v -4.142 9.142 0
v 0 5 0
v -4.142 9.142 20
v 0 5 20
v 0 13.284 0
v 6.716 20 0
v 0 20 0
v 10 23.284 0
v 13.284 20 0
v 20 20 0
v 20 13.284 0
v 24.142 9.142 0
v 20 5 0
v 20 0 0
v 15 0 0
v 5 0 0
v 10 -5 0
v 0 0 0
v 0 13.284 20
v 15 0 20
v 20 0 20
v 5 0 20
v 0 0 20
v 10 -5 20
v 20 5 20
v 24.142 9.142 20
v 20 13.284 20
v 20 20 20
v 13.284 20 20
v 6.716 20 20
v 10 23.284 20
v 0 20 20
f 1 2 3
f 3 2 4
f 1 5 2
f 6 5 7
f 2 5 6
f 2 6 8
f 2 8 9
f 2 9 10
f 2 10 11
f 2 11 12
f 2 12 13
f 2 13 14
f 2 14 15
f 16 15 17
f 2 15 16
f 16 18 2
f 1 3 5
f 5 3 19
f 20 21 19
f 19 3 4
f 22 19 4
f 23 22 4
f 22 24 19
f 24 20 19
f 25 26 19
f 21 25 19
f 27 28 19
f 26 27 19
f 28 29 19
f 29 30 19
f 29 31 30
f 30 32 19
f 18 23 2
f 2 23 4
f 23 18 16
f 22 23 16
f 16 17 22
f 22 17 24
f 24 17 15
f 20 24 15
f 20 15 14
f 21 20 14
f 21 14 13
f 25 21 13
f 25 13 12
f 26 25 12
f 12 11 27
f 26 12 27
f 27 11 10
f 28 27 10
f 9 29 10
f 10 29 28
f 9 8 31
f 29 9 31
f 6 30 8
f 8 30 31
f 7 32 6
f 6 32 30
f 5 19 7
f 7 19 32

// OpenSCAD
cube([20,20,20]);
translate([10,-5,0]){
	rotate(45){
		cube([20,20,20]);
	}
}
